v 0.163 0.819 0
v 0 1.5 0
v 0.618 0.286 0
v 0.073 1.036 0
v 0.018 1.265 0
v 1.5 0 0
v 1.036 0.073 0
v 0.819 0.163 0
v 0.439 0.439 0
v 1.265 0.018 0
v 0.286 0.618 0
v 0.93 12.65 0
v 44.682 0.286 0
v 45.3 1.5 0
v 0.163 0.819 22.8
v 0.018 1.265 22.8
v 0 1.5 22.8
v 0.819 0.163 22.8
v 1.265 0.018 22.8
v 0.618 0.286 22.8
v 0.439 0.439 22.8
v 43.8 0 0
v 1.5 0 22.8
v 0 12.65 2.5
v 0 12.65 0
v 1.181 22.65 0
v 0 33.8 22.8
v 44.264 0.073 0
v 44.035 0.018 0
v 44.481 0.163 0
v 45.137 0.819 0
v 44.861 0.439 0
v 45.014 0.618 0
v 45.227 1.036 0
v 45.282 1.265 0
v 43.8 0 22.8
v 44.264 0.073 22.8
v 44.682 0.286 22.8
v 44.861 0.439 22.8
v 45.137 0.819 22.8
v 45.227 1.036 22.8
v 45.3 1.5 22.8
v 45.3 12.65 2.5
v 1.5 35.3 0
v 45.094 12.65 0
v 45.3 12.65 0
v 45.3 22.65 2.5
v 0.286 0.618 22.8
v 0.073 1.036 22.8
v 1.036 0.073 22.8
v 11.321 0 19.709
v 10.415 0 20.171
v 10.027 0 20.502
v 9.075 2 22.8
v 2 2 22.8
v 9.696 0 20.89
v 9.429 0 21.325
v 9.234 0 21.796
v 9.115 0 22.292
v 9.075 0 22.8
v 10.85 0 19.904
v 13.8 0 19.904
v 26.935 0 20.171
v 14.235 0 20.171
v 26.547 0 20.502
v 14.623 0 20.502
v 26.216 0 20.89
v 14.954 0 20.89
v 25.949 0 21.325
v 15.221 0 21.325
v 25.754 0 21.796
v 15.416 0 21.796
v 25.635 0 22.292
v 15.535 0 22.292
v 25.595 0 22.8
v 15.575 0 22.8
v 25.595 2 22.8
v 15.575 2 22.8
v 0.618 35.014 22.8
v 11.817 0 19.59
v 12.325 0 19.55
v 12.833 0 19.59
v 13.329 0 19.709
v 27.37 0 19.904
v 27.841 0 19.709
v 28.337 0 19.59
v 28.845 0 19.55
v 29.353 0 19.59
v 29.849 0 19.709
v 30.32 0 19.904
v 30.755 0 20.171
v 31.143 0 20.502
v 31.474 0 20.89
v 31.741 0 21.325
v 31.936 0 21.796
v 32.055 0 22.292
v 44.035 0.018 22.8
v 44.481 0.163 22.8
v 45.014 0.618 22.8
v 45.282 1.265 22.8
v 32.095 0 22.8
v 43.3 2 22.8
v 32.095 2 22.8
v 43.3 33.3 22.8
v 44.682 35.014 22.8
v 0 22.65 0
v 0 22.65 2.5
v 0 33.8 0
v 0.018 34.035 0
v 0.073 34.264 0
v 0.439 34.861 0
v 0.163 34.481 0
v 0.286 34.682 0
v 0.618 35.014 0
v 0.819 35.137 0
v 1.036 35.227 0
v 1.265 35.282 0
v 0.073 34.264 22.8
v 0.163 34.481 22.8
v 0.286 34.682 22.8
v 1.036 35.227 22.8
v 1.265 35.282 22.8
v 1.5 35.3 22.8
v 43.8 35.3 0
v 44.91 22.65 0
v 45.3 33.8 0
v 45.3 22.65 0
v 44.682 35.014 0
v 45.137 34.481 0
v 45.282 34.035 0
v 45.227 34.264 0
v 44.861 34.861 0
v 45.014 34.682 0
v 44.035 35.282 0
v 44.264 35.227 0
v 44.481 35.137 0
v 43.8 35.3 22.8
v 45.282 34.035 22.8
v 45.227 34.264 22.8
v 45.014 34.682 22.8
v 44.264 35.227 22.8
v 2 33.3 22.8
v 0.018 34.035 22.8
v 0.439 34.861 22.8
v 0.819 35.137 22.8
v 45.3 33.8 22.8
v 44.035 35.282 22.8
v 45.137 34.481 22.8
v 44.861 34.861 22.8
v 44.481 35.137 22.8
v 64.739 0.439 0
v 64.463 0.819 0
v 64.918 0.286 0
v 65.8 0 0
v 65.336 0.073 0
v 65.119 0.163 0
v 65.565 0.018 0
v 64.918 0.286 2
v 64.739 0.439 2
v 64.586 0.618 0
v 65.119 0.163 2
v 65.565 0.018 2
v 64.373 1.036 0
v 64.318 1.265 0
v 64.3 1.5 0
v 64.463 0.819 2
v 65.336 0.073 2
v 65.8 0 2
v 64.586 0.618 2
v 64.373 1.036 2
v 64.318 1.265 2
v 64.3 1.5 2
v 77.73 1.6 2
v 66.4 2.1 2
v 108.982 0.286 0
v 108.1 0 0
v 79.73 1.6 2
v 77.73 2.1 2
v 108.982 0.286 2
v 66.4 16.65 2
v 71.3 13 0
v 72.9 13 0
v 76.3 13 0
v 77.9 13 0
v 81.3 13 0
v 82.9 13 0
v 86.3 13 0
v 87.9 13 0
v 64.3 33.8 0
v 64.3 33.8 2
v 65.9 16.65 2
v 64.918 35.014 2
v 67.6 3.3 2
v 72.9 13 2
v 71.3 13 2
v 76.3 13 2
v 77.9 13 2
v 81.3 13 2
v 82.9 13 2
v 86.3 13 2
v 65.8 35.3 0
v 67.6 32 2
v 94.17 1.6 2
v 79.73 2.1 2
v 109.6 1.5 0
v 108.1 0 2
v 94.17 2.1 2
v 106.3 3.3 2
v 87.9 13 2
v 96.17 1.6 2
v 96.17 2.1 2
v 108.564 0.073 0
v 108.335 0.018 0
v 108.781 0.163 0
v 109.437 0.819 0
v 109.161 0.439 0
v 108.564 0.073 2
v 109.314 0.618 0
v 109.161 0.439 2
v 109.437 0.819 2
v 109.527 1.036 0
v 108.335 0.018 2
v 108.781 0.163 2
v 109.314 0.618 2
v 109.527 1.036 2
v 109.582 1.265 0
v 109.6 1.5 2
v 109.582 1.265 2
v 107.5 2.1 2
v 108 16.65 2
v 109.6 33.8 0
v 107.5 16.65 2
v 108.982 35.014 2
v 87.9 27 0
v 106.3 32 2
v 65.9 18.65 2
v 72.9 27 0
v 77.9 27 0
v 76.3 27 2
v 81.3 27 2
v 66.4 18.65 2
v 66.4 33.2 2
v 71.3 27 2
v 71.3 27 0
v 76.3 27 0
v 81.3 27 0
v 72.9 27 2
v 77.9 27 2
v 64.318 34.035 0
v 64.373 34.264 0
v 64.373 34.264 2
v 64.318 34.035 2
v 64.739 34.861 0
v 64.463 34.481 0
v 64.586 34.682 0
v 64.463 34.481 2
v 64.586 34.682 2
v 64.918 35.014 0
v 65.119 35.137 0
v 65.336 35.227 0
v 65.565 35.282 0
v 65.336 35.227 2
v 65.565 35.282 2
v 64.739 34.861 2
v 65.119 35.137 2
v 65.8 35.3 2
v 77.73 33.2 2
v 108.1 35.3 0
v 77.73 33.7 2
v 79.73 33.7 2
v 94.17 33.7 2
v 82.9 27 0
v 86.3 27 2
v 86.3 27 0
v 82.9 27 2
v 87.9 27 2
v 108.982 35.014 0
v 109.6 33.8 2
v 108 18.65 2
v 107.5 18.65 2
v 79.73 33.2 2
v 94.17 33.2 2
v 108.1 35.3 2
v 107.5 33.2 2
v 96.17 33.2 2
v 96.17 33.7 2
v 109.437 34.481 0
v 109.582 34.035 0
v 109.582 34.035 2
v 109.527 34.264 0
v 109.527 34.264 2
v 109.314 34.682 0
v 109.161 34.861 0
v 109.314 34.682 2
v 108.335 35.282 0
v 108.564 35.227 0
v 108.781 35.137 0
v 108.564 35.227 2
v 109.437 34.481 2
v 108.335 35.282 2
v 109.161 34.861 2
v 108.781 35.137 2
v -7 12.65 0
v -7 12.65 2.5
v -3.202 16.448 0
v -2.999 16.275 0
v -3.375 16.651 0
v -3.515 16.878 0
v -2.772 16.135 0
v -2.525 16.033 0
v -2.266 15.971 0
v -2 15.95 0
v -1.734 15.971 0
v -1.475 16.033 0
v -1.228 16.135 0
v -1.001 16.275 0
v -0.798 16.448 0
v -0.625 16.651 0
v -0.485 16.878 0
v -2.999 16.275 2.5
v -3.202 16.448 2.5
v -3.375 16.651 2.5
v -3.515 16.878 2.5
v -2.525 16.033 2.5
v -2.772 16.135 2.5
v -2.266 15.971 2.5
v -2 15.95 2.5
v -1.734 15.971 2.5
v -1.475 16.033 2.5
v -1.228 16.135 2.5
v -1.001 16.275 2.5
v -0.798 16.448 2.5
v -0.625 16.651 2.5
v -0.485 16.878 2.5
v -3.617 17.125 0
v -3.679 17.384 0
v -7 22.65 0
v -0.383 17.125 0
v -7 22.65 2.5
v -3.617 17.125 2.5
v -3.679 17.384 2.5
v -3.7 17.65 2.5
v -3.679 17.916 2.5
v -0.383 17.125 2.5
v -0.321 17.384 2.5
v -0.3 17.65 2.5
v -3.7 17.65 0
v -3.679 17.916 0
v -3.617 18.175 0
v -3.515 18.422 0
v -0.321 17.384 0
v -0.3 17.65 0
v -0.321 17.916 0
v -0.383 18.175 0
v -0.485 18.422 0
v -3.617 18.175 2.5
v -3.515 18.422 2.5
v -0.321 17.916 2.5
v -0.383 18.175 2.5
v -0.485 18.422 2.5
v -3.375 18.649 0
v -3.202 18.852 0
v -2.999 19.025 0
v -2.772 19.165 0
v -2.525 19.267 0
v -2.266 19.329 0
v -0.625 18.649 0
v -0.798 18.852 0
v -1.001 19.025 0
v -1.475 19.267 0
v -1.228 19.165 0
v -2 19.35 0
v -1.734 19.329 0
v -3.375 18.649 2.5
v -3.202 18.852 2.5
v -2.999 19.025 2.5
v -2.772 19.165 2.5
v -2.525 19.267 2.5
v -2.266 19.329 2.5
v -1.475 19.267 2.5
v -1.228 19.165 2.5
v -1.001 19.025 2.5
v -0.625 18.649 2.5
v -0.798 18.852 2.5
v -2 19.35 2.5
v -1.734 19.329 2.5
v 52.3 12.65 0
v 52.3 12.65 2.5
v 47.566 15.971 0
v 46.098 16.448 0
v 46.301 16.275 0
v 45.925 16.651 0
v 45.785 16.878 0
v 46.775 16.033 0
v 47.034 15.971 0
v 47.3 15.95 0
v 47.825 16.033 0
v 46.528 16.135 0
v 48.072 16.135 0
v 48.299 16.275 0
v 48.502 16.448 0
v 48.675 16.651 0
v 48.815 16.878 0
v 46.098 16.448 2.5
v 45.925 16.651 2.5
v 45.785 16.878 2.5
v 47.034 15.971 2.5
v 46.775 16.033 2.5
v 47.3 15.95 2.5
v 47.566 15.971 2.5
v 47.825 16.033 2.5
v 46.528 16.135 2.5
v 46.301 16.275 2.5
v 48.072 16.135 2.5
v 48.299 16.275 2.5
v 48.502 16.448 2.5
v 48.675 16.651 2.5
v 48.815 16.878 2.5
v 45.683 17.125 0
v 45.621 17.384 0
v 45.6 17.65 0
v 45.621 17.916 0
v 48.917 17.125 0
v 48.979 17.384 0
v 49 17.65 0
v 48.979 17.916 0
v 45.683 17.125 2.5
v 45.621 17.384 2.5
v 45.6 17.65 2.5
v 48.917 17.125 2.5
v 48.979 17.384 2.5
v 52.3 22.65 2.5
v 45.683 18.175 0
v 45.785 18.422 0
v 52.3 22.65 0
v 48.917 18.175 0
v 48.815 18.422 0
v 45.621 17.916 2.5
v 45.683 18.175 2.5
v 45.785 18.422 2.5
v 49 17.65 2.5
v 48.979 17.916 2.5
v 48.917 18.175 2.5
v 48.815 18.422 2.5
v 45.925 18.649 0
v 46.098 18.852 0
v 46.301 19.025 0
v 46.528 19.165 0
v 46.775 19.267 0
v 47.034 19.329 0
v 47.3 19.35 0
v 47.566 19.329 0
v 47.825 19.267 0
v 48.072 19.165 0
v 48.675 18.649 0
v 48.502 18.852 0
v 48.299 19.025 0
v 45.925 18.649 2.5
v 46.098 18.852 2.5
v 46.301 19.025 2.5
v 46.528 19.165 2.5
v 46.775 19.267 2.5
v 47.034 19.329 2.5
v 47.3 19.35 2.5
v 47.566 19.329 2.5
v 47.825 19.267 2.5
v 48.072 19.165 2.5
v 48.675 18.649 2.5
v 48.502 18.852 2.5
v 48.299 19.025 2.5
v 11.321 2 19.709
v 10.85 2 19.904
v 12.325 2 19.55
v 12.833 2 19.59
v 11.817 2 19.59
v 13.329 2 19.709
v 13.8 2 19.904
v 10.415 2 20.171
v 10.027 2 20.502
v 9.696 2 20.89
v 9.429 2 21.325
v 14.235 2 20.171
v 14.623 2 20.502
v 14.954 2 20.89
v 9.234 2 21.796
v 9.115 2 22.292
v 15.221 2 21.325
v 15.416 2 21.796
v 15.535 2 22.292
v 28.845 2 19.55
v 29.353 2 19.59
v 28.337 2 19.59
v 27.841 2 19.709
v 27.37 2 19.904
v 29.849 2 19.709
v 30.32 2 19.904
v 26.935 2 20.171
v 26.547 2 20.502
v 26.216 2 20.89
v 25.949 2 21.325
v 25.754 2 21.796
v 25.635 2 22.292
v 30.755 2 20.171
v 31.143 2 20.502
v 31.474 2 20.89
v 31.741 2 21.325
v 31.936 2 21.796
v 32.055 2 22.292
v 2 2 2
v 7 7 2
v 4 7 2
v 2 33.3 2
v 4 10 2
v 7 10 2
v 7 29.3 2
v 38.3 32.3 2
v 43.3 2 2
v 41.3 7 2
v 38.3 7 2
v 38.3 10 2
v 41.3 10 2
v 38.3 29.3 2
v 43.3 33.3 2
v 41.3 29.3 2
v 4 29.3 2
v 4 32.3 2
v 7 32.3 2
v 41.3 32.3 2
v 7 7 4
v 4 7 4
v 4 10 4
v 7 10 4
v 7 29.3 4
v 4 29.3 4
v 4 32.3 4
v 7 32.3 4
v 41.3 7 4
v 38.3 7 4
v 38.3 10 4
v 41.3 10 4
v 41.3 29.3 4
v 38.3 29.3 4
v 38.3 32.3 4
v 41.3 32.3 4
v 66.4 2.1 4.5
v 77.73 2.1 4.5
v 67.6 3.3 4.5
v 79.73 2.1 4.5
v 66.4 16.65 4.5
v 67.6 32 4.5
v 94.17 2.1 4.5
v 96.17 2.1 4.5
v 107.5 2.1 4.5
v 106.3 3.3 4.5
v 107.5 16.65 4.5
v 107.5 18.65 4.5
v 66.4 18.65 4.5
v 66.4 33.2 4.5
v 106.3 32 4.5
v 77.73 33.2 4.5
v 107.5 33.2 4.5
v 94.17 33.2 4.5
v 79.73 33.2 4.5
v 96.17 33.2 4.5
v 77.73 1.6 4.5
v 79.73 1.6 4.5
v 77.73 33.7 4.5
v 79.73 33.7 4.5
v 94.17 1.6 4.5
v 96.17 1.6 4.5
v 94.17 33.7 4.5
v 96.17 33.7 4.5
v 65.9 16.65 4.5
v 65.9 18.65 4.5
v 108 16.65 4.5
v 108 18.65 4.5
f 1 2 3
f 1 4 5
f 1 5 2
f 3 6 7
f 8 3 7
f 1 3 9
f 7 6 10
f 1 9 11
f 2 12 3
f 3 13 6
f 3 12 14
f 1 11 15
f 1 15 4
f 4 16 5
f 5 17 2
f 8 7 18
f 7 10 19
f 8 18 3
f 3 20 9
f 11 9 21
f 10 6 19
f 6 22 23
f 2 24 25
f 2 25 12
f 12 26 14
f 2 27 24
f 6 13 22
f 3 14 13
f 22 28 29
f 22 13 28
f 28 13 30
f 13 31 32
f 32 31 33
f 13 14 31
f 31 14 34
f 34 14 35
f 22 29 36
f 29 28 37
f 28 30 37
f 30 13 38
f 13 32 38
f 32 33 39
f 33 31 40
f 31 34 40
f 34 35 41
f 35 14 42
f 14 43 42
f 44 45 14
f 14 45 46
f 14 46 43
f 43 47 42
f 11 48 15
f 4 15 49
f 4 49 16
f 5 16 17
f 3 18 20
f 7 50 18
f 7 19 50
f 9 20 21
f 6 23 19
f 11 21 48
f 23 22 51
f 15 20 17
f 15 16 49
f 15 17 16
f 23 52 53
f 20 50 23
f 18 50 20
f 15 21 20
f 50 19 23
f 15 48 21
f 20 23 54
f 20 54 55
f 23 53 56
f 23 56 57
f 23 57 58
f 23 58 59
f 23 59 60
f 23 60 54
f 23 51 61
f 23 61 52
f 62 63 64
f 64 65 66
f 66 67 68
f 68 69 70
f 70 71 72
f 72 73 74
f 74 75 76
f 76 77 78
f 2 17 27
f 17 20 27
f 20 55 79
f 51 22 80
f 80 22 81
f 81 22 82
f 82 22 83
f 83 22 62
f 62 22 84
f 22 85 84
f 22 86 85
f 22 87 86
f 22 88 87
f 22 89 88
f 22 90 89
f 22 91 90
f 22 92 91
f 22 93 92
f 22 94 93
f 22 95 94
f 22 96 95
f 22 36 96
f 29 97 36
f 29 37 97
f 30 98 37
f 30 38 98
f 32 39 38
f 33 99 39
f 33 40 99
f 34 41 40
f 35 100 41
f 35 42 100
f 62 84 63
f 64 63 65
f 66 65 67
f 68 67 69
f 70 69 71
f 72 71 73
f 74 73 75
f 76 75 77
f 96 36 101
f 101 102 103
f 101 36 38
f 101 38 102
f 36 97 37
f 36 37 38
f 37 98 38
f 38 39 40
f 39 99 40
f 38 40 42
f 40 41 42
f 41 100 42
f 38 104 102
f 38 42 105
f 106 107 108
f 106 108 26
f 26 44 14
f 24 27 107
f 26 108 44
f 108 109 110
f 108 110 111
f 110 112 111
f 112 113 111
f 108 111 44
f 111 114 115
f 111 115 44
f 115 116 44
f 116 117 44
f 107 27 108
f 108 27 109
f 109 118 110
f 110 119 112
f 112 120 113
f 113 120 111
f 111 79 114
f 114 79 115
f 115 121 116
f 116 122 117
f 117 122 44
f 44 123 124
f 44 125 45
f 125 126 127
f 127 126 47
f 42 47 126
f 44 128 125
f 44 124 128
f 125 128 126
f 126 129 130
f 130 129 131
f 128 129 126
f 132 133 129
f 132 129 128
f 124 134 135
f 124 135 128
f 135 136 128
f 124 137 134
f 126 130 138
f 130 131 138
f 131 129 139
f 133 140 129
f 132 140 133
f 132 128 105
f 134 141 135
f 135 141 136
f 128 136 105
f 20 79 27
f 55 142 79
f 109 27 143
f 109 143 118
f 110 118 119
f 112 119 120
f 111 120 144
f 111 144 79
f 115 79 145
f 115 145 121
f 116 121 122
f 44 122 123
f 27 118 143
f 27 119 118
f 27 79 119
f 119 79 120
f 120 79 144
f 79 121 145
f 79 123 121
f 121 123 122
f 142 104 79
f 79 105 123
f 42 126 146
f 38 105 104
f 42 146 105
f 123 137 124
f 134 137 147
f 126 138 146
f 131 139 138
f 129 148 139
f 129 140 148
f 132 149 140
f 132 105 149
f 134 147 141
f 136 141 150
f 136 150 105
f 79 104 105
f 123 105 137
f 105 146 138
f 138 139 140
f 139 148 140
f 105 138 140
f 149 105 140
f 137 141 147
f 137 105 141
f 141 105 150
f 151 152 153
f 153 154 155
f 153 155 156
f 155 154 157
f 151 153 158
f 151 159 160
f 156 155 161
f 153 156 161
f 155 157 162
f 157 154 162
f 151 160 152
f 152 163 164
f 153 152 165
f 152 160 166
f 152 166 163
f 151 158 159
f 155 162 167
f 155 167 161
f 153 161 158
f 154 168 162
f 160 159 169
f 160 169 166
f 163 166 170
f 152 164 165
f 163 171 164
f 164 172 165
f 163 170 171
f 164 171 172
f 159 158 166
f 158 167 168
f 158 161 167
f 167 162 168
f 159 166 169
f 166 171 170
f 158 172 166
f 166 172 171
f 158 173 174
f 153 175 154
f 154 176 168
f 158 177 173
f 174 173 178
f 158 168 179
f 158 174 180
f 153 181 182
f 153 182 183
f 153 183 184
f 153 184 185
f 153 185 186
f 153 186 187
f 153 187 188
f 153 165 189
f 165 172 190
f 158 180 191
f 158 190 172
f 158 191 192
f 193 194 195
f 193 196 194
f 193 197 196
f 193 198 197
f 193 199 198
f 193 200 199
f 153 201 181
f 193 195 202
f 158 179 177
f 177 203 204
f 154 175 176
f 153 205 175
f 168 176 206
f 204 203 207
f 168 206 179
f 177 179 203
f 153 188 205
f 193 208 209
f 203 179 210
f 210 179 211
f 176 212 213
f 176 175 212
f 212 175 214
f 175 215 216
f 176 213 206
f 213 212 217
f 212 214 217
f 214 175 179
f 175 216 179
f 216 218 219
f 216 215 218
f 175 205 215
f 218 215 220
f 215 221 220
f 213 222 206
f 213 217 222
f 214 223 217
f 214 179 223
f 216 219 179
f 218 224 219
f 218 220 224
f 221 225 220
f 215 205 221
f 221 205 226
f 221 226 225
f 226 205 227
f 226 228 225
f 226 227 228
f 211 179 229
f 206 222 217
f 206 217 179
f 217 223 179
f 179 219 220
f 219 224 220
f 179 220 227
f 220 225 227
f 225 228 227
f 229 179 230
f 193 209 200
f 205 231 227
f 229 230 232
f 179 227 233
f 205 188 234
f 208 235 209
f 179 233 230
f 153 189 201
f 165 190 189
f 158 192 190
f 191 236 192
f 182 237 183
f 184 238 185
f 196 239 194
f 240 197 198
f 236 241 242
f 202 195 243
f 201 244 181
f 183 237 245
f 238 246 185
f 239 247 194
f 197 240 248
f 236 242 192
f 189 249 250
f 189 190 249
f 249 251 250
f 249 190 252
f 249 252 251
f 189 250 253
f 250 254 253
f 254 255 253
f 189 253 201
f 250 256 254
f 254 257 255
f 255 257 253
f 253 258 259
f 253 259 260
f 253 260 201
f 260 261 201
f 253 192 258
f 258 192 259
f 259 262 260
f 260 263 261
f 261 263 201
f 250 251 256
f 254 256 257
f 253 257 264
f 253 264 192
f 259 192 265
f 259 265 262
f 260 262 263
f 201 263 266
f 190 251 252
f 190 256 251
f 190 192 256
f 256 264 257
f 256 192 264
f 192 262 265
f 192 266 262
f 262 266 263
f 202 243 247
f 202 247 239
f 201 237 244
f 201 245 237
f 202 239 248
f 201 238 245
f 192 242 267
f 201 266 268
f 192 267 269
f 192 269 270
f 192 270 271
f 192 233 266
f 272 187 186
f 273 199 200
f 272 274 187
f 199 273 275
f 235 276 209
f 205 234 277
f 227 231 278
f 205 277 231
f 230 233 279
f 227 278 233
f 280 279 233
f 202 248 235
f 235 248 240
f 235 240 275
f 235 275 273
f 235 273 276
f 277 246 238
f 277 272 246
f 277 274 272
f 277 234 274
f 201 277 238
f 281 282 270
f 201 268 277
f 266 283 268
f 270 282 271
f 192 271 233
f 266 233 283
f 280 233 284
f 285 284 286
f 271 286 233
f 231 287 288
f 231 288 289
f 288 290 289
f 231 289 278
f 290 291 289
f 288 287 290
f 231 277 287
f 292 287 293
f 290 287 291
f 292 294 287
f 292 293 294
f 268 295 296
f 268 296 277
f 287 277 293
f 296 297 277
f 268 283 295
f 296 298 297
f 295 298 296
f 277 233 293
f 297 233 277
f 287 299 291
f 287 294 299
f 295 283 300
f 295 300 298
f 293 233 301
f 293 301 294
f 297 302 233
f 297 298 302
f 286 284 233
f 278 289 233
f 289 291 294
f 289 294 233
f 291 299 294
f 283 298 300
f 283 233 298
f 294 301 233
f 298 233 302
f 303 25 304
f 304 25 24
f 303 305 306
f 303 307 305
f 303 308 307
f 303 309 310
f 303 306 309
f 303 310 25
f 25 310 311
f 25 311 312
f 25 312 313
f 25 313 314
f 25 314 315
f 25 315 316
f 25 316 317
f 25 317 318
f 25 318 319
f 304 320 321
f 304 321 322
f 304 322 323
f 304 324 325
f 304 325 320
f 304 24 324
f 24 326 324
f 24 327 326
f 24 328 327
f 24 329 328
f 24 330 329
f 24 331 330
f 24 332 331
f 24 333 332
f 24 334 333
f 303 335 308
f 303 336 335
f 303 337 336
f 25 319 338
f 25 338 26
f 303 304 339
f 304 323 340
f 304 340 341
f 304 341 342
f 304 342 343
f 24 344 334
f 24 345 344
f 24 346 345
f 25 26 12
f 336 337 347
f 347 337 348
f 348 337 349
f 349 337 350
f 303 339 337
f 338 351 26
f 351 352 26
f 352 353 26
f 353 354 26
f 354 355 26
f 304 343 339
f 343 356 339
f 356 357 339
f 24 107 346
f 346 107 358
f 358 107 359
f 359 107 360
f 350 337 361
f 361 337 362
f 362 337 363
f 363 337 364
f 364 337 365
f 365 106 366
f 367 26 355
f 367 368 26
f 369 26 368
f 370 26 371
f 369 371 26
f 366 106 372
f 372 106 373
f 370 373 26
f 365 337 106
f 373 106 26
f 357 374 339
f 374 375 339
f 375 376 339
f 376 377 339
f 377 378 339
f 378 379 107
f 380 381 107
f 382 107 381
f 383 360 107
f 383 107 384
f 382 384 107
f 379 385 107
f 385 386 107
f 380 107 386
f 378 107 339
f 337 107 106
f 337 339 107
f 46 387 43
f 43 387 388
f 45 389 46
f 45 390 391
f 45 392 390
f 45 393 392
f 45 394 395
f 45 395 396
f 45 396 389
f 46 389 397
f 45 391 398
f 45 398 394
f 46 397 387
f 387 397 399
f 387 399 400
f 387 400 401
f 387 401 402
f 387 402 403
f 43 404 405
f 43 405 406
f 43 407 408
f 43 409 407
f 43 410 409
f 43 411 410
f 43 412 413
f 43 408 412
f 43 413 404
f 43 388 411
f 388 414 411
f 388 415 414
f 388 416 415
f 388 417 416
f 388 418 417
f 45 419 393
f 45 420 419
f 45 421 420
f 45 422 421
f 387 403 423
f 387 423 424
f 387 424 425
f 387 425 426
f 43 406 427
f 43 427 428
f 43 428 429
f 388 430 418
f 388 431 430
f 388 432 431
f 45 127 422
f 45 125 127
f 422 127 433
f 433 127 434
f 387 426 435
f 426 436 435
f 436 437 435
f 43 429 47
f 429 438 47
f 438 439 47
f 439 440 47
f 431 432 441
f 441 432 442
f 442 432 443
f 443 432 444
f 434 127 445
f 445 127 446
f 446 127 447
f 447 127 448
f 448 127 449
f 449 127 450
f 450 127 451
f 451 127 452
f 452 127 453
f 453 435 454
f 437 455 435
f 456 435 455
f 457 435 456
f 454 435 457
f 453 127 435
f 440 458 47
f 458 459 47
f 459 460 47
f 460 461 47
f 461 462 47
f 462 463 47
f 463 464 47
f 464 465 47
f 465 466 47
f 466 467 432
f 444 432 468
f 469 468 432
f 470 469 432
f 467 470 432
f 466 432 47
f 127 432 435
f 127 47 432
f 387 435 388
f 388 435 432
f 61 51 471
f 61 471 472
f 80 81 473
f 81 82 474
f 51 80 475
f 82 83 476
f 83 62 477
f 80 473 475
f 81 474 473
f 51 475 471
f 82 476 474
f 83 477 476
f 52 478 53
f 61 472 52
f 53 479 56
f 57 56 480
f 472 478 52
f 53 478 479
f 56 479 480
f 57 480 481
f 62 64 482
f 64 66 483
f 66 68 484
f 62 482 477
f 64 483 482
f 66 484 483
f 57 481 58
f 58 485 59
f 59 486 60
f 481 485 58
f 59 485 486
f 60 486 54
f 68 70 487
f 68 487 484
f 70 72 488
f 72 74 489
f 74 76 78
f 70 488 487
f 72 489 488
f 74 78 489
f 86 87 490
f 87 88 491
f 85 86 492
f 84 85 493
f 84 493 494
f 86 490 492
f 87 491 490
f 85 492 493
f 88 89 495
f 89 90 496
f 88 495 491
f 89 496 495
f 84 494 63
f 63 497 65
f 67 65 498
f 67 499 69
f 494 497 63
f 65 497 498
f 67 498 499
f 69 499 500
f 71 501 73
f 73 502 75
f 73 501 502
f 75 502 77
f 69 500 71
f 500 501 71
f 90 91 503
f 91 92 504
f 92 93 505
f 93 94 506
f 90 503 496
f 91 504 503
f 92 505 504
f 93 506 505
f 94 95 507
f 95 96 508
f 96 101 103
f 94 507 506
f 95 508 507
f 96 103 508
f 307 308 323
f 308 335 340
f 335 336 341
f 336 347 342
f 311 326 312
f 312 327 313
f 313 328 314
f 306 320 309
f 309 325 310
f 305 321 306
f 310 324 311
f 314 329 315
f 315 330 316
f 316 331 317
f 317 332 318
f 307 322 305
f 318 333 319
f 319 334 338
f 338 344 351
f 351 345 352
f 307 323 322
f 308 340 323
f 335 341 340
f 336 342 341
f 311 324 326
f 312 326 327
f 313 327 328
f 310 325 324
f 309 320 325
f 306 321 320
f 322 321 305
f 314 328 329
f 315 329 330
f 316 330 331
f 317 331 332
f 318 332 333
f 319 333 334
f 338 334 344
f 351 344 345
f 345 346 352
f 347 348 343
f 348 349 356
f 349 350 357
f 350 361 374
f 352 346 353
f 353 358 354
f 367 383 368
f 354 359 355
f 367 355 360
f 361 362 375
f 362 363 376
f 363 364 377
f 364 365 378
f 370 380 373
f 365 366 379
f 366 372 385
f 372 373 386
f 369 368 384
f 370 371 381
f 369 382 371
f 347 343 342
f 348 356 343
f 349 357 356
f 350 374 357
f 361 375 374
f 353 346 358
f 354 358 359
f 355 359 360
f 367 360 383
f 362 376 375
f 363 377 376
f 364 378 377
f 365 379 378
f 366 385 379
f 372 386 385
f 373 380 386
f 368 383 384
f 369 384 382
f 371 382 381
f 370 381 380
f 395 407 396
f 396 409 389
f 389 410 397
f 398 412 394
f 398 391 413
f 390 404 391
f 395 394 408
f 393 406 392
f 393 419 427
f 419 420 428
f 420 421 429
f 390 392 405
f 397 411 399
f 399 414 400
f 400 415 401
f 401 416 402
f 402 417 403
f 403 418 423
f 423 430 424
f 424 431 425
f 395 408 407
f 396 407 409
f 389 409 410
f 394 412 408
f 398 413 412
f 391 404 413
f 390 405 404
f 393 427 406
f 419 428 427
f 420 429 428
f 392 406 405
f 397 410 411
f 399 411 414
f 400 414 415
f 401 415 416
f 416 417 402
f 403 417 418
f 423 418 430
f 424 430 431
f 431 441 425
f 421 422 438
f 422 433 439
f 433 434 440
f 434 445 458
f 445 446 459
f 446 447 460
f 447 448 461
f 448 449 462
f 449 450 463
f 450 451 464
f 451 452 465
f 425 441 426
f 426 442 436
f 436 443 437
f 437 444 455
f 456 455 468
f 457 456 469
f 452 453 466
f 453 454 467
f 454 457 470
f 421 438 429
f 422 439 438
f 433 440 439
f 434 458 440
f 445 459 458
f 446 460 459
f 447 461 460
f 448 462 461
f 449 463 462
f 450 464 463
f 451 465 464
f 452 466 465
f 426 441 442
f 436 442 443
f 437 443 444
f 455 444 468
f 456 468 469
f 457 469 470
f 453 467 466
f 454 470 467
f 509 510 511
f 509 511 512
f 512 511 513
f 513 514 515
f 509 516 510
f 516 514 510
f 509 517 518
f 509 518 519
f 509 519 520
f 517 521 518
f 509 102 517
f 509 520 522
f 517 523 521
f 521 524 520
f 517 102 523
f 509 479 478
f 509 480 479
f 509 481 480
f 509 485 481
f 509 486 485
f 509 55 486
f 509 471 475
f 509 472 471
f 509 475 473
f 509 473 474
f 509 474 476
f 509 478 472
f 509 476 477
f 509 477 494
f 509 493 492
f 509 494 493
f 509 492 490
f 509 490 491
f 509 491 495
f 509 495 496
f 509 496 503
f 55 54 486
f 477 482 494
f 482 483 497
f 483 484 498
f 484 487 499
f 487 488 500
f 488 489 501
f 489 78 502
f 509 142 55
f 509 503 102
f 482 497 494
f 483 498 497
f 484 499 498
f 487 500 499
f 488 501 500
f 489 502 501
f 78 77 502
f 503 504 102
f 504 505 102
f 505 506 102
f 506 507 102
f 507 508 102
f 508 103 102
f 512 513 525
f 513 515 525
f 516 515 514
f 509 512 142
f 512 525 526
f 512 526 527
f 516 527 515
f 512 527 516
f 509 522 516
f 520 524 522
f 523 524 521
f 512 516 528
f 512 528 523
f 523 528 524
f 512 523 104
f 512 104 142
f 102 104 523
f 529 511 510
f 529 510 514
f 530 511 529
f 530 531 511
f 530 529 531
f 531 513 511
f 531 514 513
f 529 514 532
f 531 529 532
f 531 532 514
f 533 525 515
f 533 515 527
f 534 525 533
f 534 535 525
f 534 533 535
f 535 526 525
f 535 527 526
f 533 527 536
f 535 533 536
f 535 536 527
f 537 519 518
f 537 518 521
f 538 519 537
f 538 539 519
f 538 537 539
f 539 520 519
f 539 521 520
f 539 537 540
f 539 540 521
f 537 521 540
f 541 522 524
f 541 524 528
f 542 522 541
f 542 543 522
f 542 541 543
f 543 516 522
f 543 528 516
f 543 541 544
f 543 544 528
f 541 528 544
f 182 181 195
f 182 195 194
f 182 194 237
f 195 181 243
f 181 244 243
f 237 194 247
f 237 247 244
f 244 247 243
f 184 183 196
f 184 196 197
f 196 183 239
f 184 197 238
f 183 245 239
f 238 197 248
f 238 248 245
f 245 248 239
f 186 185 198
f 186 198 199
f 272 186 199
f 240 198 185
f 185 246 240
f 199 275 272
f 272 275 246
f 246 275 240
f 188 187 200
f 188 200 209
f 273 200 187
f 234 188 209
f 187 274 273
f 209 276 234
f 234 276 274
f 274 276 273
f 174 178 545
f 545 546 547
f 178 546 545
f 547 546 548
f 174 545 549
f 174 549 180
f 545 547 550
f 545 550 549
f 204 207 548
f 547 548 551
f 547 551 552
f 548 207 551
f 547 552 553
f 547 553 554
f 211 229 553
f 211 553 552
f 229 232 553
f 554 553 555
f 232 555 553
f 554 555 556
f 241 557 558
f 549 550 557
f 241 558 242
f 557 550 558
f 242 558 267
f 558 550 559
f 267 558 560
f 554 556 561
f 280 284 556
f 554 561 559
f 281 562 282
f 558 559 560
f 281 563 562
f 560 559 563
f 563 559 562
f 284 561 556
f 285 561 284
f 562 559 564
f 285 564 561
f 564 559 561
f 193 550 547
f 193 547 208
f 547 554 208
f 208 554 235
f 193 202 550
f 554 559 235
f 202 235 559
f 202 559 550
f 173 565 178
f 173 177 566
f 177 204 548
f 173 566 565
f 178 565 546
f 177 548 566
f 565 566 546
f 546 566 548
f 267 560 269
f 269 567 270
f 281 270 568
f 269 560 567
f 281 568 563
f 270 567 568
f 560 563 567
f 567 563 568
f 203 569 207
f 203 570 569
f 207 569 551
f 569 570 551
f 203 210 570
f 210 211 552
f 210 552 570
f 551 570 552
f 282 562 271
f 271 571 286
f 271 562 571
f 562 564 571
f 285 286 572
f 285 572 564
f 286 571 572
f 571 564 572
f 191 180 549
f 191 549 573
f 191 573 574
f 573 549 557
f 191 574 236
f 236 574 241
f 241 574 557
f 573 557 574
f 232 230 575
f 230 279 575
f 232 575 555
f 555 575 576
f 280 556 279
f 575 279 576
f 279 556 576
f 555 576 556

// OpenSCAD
// ESP-01S relay module case - parametric, two parts (base + friction-fit lid)
// Open in OpenSCAD, press F6 (render), then File > Export > STL.
// Set `part` to "base", "lid" or "both" (both = print layout, lid flipped).
//
// Orientation (matches Example Wiring.jpeg):
//   X = board length (37.3), Y = board width (25.3), Z = height.
//   FRONT wall (y = 0) is the terminal side: the cables leave through it.
//   The ESP-01S antenna end is the +X (right) end. Keep it plastic only.

part = "both";           // "base" | "lid" | "both"

// ---- Measured board (mm) ----
board_l = 37.3;
board_w = 25.3;
board_h = 16.8;          // tallest part (relay), measured from the PCB underside

// ---- Clearances (mm) ----
clr        = 1.0;        // gap on every side of the board (manufacturing variance)
len_extra  = 2.0;        // extra along the length for wire diameter
wire_depth = 4.0;        // extra room in front of the terminals for wires to bend out
top_clr    = 2.0;        // headroom above the tallest part (jumper wire, lid)

// ---- Structure (mm) ----
wall      = 2.0;
floor_t   = 2.0;
standoff  = 2.0;         // PCB underside to floor
lid_t     = 2.0;
lip_h     = 2.5;         // how far the lid lip goes into the base
lip_wall  = 1.2;
lip_tol   = 0.1;         // lid lip gap per side. NEGATIVE = oversize lip (interference).
                         // Tune this after measuring your print (see README note below).
bump_h    = 0.5;         // crush ribs on the lip: how far each rib sticks out past the lip face.
                         // The ribs do the gripping, so the lip itself can stay near nominal.
                         // Set 0 to turn the ribs off.
bump_w    = 2.0;         // rib width
corner_r  = 1.5;

// ---- Cable notches in the front wall (half-round, closed by the lid) ----
notch_d   = 6.5;         // fits a 2-conductor USB pigtail cable
notch_x   = [0.25, 0.65]; // positions as a fraction of inner length (input, output)

// ---- Mounting ears (set false for none) ----
ears      = true;
ear_hole  = 3.4;         // for #6 / M3 screws

// ---- Optional LED window on the lid (measure on the real board) ----
led_hole  = false;
led_x     = 0;           // mm from inner left edge
led_y     = 0;           // mm from inner front edge
led_d     = 3.0;

// ---- Derived ----
inner_l = board_l + 2*clr + len_extra;
inner_w = board_w + 2*clr + wire_depth;
inner_h = standoff + board_h + top_clr;
outer_l = inner_l + 2*wall;
outer_w = inner_w + 2*wall;
base_h  = floor_t + inner_h;

// Board origin inside the case (board sits against the back wall, wires get the front)
bx = wall + clr + len_extra/2;
by = wall + wire_depth + clr;

$fn = 40;

module rrect(l, w, h, r) {
    hull() for (x = [r, l - r], y = [r, w - r])
        translate([x, y, 0]) cylinder(r = r, h = h);
}

module base() {
    difference() {
        union() {
            rrect(outer_l, outer_w, base_h, corner_r);
            if (ears) for (sx = [0, 1])
                translate([sx == 0 ? -7 : outer_l - 3, outer_w/2 - 5, 0])
                    cube([10, 10, floor_t + 0.5]);
        }
        // cavity
        translate([wall, wall, floor_t]) cube([inner_l, inner_w, inner_h + 1]);
        // front wall cable notches (half-round at the top edge)
        for (f = notch_x)
            translate([wall + inner_l * f, -1, base_h])
                rotate([-90, 0, 0]) cylinder(d = notch_d, h = wall + 2);
        // ear screw holes
        if (ears) for (sx = [0, 1])
            translate([sx == 0 ? -2 : outer_l + 2, outer_w/2, -1])
                cylinder(d = ear_hole, h = floor_t + 3);
    }
    // PCB support pads at the four board corners
    for (x = [bx, bx + board_l - 3], y = [by, by + board_w - 3])
        translate([x, y, floor_t]) cube([3, 3, standoff]);
}

module lid() {
    difference() {
        union() {
            rrect(outer_l, outer_w, lid_t, corner_r);
            // lip that drops into the base opening
            // Lip outer face sits lip_tol short of the cavity wall on each side,
            // so it is a snug fit rather than loose.
            translate([wall + lip_tol, wall + lip_tol, lid_t])
                difference() {
                    cube([inner_l - 2*lip_tol, inner_w - 2*lip_tol, lip_h]);
                    translate([lip_wall, lip_wall, -0.01])
                        cube([inner_l - 2*lip_tol - 2*lip_wall,
                              inner_w - 2*lip_tol - 2*lip_wall, lip_h + 1]);
                }
            // Crush ribs: thin vertical ridges that press into the cavity walls.
            if (bump_h > 0) {
                lx = wall + lip_tol;  ly = wall + lip_tol;
                ll = inner_l - 2*lip_tol;  lw = inner_w - 2*lip_tol;
                // front and back faces (two ribs each)
                for (f = [0.3, 0.7]) {
                    translate([lx + ll*f - bump_w/2, ly - bump_h, lid_t]) cube([bump_w, bump_h + 0.2, lip_h]);
                    translate([lx + ll*f - bump_w/2, ly + lw - 0.2, lid_t]) cube([bump_w, bump_h + 0.2, lip_h]);
                }
                // left and right ends (one rib each)
                translate([lx - bump_h, ly + lw/2 - bump_w/2, lid_t]) cube([bump_h + 0.2, bump_w, lip_h]);
                translate([lx + ll - 0.2, ly + lw/2 - bump_w/2, lid_t]) cube([bump_h + 0.2, bump_w, lip_h]);
            }
        }
        // vent slots over the relay (left ~60% of the board)
        for (i = [0 : 3])
            translate([bx + 3 + i * 5, by + 6, -1]) cube([1.6, 14, lid_t + 2]);
        // optional LED window
        if (led_hole)
            translate([wall + led_x, wall + led_y, -1]) cylinder(d = led_d, h = lid_t + 2);
    }
}

if (part == "base") base();
else if (part == "lid") lid();
else {
    base();
    // lid flipped (lip up) beside the base for printing
    translate([outer_l + 12 + (ears ? 7 : 0), 0, 0]) lid();
}

echo(str("Outer size: ", outer_l, " x ", outer_w, " x ", base_h + lid_t, " mm (base+lid)"));
echo(str("Inner cavity: ", inner_l, " x ", inner_w, " x ", inner_h, " mm"));
